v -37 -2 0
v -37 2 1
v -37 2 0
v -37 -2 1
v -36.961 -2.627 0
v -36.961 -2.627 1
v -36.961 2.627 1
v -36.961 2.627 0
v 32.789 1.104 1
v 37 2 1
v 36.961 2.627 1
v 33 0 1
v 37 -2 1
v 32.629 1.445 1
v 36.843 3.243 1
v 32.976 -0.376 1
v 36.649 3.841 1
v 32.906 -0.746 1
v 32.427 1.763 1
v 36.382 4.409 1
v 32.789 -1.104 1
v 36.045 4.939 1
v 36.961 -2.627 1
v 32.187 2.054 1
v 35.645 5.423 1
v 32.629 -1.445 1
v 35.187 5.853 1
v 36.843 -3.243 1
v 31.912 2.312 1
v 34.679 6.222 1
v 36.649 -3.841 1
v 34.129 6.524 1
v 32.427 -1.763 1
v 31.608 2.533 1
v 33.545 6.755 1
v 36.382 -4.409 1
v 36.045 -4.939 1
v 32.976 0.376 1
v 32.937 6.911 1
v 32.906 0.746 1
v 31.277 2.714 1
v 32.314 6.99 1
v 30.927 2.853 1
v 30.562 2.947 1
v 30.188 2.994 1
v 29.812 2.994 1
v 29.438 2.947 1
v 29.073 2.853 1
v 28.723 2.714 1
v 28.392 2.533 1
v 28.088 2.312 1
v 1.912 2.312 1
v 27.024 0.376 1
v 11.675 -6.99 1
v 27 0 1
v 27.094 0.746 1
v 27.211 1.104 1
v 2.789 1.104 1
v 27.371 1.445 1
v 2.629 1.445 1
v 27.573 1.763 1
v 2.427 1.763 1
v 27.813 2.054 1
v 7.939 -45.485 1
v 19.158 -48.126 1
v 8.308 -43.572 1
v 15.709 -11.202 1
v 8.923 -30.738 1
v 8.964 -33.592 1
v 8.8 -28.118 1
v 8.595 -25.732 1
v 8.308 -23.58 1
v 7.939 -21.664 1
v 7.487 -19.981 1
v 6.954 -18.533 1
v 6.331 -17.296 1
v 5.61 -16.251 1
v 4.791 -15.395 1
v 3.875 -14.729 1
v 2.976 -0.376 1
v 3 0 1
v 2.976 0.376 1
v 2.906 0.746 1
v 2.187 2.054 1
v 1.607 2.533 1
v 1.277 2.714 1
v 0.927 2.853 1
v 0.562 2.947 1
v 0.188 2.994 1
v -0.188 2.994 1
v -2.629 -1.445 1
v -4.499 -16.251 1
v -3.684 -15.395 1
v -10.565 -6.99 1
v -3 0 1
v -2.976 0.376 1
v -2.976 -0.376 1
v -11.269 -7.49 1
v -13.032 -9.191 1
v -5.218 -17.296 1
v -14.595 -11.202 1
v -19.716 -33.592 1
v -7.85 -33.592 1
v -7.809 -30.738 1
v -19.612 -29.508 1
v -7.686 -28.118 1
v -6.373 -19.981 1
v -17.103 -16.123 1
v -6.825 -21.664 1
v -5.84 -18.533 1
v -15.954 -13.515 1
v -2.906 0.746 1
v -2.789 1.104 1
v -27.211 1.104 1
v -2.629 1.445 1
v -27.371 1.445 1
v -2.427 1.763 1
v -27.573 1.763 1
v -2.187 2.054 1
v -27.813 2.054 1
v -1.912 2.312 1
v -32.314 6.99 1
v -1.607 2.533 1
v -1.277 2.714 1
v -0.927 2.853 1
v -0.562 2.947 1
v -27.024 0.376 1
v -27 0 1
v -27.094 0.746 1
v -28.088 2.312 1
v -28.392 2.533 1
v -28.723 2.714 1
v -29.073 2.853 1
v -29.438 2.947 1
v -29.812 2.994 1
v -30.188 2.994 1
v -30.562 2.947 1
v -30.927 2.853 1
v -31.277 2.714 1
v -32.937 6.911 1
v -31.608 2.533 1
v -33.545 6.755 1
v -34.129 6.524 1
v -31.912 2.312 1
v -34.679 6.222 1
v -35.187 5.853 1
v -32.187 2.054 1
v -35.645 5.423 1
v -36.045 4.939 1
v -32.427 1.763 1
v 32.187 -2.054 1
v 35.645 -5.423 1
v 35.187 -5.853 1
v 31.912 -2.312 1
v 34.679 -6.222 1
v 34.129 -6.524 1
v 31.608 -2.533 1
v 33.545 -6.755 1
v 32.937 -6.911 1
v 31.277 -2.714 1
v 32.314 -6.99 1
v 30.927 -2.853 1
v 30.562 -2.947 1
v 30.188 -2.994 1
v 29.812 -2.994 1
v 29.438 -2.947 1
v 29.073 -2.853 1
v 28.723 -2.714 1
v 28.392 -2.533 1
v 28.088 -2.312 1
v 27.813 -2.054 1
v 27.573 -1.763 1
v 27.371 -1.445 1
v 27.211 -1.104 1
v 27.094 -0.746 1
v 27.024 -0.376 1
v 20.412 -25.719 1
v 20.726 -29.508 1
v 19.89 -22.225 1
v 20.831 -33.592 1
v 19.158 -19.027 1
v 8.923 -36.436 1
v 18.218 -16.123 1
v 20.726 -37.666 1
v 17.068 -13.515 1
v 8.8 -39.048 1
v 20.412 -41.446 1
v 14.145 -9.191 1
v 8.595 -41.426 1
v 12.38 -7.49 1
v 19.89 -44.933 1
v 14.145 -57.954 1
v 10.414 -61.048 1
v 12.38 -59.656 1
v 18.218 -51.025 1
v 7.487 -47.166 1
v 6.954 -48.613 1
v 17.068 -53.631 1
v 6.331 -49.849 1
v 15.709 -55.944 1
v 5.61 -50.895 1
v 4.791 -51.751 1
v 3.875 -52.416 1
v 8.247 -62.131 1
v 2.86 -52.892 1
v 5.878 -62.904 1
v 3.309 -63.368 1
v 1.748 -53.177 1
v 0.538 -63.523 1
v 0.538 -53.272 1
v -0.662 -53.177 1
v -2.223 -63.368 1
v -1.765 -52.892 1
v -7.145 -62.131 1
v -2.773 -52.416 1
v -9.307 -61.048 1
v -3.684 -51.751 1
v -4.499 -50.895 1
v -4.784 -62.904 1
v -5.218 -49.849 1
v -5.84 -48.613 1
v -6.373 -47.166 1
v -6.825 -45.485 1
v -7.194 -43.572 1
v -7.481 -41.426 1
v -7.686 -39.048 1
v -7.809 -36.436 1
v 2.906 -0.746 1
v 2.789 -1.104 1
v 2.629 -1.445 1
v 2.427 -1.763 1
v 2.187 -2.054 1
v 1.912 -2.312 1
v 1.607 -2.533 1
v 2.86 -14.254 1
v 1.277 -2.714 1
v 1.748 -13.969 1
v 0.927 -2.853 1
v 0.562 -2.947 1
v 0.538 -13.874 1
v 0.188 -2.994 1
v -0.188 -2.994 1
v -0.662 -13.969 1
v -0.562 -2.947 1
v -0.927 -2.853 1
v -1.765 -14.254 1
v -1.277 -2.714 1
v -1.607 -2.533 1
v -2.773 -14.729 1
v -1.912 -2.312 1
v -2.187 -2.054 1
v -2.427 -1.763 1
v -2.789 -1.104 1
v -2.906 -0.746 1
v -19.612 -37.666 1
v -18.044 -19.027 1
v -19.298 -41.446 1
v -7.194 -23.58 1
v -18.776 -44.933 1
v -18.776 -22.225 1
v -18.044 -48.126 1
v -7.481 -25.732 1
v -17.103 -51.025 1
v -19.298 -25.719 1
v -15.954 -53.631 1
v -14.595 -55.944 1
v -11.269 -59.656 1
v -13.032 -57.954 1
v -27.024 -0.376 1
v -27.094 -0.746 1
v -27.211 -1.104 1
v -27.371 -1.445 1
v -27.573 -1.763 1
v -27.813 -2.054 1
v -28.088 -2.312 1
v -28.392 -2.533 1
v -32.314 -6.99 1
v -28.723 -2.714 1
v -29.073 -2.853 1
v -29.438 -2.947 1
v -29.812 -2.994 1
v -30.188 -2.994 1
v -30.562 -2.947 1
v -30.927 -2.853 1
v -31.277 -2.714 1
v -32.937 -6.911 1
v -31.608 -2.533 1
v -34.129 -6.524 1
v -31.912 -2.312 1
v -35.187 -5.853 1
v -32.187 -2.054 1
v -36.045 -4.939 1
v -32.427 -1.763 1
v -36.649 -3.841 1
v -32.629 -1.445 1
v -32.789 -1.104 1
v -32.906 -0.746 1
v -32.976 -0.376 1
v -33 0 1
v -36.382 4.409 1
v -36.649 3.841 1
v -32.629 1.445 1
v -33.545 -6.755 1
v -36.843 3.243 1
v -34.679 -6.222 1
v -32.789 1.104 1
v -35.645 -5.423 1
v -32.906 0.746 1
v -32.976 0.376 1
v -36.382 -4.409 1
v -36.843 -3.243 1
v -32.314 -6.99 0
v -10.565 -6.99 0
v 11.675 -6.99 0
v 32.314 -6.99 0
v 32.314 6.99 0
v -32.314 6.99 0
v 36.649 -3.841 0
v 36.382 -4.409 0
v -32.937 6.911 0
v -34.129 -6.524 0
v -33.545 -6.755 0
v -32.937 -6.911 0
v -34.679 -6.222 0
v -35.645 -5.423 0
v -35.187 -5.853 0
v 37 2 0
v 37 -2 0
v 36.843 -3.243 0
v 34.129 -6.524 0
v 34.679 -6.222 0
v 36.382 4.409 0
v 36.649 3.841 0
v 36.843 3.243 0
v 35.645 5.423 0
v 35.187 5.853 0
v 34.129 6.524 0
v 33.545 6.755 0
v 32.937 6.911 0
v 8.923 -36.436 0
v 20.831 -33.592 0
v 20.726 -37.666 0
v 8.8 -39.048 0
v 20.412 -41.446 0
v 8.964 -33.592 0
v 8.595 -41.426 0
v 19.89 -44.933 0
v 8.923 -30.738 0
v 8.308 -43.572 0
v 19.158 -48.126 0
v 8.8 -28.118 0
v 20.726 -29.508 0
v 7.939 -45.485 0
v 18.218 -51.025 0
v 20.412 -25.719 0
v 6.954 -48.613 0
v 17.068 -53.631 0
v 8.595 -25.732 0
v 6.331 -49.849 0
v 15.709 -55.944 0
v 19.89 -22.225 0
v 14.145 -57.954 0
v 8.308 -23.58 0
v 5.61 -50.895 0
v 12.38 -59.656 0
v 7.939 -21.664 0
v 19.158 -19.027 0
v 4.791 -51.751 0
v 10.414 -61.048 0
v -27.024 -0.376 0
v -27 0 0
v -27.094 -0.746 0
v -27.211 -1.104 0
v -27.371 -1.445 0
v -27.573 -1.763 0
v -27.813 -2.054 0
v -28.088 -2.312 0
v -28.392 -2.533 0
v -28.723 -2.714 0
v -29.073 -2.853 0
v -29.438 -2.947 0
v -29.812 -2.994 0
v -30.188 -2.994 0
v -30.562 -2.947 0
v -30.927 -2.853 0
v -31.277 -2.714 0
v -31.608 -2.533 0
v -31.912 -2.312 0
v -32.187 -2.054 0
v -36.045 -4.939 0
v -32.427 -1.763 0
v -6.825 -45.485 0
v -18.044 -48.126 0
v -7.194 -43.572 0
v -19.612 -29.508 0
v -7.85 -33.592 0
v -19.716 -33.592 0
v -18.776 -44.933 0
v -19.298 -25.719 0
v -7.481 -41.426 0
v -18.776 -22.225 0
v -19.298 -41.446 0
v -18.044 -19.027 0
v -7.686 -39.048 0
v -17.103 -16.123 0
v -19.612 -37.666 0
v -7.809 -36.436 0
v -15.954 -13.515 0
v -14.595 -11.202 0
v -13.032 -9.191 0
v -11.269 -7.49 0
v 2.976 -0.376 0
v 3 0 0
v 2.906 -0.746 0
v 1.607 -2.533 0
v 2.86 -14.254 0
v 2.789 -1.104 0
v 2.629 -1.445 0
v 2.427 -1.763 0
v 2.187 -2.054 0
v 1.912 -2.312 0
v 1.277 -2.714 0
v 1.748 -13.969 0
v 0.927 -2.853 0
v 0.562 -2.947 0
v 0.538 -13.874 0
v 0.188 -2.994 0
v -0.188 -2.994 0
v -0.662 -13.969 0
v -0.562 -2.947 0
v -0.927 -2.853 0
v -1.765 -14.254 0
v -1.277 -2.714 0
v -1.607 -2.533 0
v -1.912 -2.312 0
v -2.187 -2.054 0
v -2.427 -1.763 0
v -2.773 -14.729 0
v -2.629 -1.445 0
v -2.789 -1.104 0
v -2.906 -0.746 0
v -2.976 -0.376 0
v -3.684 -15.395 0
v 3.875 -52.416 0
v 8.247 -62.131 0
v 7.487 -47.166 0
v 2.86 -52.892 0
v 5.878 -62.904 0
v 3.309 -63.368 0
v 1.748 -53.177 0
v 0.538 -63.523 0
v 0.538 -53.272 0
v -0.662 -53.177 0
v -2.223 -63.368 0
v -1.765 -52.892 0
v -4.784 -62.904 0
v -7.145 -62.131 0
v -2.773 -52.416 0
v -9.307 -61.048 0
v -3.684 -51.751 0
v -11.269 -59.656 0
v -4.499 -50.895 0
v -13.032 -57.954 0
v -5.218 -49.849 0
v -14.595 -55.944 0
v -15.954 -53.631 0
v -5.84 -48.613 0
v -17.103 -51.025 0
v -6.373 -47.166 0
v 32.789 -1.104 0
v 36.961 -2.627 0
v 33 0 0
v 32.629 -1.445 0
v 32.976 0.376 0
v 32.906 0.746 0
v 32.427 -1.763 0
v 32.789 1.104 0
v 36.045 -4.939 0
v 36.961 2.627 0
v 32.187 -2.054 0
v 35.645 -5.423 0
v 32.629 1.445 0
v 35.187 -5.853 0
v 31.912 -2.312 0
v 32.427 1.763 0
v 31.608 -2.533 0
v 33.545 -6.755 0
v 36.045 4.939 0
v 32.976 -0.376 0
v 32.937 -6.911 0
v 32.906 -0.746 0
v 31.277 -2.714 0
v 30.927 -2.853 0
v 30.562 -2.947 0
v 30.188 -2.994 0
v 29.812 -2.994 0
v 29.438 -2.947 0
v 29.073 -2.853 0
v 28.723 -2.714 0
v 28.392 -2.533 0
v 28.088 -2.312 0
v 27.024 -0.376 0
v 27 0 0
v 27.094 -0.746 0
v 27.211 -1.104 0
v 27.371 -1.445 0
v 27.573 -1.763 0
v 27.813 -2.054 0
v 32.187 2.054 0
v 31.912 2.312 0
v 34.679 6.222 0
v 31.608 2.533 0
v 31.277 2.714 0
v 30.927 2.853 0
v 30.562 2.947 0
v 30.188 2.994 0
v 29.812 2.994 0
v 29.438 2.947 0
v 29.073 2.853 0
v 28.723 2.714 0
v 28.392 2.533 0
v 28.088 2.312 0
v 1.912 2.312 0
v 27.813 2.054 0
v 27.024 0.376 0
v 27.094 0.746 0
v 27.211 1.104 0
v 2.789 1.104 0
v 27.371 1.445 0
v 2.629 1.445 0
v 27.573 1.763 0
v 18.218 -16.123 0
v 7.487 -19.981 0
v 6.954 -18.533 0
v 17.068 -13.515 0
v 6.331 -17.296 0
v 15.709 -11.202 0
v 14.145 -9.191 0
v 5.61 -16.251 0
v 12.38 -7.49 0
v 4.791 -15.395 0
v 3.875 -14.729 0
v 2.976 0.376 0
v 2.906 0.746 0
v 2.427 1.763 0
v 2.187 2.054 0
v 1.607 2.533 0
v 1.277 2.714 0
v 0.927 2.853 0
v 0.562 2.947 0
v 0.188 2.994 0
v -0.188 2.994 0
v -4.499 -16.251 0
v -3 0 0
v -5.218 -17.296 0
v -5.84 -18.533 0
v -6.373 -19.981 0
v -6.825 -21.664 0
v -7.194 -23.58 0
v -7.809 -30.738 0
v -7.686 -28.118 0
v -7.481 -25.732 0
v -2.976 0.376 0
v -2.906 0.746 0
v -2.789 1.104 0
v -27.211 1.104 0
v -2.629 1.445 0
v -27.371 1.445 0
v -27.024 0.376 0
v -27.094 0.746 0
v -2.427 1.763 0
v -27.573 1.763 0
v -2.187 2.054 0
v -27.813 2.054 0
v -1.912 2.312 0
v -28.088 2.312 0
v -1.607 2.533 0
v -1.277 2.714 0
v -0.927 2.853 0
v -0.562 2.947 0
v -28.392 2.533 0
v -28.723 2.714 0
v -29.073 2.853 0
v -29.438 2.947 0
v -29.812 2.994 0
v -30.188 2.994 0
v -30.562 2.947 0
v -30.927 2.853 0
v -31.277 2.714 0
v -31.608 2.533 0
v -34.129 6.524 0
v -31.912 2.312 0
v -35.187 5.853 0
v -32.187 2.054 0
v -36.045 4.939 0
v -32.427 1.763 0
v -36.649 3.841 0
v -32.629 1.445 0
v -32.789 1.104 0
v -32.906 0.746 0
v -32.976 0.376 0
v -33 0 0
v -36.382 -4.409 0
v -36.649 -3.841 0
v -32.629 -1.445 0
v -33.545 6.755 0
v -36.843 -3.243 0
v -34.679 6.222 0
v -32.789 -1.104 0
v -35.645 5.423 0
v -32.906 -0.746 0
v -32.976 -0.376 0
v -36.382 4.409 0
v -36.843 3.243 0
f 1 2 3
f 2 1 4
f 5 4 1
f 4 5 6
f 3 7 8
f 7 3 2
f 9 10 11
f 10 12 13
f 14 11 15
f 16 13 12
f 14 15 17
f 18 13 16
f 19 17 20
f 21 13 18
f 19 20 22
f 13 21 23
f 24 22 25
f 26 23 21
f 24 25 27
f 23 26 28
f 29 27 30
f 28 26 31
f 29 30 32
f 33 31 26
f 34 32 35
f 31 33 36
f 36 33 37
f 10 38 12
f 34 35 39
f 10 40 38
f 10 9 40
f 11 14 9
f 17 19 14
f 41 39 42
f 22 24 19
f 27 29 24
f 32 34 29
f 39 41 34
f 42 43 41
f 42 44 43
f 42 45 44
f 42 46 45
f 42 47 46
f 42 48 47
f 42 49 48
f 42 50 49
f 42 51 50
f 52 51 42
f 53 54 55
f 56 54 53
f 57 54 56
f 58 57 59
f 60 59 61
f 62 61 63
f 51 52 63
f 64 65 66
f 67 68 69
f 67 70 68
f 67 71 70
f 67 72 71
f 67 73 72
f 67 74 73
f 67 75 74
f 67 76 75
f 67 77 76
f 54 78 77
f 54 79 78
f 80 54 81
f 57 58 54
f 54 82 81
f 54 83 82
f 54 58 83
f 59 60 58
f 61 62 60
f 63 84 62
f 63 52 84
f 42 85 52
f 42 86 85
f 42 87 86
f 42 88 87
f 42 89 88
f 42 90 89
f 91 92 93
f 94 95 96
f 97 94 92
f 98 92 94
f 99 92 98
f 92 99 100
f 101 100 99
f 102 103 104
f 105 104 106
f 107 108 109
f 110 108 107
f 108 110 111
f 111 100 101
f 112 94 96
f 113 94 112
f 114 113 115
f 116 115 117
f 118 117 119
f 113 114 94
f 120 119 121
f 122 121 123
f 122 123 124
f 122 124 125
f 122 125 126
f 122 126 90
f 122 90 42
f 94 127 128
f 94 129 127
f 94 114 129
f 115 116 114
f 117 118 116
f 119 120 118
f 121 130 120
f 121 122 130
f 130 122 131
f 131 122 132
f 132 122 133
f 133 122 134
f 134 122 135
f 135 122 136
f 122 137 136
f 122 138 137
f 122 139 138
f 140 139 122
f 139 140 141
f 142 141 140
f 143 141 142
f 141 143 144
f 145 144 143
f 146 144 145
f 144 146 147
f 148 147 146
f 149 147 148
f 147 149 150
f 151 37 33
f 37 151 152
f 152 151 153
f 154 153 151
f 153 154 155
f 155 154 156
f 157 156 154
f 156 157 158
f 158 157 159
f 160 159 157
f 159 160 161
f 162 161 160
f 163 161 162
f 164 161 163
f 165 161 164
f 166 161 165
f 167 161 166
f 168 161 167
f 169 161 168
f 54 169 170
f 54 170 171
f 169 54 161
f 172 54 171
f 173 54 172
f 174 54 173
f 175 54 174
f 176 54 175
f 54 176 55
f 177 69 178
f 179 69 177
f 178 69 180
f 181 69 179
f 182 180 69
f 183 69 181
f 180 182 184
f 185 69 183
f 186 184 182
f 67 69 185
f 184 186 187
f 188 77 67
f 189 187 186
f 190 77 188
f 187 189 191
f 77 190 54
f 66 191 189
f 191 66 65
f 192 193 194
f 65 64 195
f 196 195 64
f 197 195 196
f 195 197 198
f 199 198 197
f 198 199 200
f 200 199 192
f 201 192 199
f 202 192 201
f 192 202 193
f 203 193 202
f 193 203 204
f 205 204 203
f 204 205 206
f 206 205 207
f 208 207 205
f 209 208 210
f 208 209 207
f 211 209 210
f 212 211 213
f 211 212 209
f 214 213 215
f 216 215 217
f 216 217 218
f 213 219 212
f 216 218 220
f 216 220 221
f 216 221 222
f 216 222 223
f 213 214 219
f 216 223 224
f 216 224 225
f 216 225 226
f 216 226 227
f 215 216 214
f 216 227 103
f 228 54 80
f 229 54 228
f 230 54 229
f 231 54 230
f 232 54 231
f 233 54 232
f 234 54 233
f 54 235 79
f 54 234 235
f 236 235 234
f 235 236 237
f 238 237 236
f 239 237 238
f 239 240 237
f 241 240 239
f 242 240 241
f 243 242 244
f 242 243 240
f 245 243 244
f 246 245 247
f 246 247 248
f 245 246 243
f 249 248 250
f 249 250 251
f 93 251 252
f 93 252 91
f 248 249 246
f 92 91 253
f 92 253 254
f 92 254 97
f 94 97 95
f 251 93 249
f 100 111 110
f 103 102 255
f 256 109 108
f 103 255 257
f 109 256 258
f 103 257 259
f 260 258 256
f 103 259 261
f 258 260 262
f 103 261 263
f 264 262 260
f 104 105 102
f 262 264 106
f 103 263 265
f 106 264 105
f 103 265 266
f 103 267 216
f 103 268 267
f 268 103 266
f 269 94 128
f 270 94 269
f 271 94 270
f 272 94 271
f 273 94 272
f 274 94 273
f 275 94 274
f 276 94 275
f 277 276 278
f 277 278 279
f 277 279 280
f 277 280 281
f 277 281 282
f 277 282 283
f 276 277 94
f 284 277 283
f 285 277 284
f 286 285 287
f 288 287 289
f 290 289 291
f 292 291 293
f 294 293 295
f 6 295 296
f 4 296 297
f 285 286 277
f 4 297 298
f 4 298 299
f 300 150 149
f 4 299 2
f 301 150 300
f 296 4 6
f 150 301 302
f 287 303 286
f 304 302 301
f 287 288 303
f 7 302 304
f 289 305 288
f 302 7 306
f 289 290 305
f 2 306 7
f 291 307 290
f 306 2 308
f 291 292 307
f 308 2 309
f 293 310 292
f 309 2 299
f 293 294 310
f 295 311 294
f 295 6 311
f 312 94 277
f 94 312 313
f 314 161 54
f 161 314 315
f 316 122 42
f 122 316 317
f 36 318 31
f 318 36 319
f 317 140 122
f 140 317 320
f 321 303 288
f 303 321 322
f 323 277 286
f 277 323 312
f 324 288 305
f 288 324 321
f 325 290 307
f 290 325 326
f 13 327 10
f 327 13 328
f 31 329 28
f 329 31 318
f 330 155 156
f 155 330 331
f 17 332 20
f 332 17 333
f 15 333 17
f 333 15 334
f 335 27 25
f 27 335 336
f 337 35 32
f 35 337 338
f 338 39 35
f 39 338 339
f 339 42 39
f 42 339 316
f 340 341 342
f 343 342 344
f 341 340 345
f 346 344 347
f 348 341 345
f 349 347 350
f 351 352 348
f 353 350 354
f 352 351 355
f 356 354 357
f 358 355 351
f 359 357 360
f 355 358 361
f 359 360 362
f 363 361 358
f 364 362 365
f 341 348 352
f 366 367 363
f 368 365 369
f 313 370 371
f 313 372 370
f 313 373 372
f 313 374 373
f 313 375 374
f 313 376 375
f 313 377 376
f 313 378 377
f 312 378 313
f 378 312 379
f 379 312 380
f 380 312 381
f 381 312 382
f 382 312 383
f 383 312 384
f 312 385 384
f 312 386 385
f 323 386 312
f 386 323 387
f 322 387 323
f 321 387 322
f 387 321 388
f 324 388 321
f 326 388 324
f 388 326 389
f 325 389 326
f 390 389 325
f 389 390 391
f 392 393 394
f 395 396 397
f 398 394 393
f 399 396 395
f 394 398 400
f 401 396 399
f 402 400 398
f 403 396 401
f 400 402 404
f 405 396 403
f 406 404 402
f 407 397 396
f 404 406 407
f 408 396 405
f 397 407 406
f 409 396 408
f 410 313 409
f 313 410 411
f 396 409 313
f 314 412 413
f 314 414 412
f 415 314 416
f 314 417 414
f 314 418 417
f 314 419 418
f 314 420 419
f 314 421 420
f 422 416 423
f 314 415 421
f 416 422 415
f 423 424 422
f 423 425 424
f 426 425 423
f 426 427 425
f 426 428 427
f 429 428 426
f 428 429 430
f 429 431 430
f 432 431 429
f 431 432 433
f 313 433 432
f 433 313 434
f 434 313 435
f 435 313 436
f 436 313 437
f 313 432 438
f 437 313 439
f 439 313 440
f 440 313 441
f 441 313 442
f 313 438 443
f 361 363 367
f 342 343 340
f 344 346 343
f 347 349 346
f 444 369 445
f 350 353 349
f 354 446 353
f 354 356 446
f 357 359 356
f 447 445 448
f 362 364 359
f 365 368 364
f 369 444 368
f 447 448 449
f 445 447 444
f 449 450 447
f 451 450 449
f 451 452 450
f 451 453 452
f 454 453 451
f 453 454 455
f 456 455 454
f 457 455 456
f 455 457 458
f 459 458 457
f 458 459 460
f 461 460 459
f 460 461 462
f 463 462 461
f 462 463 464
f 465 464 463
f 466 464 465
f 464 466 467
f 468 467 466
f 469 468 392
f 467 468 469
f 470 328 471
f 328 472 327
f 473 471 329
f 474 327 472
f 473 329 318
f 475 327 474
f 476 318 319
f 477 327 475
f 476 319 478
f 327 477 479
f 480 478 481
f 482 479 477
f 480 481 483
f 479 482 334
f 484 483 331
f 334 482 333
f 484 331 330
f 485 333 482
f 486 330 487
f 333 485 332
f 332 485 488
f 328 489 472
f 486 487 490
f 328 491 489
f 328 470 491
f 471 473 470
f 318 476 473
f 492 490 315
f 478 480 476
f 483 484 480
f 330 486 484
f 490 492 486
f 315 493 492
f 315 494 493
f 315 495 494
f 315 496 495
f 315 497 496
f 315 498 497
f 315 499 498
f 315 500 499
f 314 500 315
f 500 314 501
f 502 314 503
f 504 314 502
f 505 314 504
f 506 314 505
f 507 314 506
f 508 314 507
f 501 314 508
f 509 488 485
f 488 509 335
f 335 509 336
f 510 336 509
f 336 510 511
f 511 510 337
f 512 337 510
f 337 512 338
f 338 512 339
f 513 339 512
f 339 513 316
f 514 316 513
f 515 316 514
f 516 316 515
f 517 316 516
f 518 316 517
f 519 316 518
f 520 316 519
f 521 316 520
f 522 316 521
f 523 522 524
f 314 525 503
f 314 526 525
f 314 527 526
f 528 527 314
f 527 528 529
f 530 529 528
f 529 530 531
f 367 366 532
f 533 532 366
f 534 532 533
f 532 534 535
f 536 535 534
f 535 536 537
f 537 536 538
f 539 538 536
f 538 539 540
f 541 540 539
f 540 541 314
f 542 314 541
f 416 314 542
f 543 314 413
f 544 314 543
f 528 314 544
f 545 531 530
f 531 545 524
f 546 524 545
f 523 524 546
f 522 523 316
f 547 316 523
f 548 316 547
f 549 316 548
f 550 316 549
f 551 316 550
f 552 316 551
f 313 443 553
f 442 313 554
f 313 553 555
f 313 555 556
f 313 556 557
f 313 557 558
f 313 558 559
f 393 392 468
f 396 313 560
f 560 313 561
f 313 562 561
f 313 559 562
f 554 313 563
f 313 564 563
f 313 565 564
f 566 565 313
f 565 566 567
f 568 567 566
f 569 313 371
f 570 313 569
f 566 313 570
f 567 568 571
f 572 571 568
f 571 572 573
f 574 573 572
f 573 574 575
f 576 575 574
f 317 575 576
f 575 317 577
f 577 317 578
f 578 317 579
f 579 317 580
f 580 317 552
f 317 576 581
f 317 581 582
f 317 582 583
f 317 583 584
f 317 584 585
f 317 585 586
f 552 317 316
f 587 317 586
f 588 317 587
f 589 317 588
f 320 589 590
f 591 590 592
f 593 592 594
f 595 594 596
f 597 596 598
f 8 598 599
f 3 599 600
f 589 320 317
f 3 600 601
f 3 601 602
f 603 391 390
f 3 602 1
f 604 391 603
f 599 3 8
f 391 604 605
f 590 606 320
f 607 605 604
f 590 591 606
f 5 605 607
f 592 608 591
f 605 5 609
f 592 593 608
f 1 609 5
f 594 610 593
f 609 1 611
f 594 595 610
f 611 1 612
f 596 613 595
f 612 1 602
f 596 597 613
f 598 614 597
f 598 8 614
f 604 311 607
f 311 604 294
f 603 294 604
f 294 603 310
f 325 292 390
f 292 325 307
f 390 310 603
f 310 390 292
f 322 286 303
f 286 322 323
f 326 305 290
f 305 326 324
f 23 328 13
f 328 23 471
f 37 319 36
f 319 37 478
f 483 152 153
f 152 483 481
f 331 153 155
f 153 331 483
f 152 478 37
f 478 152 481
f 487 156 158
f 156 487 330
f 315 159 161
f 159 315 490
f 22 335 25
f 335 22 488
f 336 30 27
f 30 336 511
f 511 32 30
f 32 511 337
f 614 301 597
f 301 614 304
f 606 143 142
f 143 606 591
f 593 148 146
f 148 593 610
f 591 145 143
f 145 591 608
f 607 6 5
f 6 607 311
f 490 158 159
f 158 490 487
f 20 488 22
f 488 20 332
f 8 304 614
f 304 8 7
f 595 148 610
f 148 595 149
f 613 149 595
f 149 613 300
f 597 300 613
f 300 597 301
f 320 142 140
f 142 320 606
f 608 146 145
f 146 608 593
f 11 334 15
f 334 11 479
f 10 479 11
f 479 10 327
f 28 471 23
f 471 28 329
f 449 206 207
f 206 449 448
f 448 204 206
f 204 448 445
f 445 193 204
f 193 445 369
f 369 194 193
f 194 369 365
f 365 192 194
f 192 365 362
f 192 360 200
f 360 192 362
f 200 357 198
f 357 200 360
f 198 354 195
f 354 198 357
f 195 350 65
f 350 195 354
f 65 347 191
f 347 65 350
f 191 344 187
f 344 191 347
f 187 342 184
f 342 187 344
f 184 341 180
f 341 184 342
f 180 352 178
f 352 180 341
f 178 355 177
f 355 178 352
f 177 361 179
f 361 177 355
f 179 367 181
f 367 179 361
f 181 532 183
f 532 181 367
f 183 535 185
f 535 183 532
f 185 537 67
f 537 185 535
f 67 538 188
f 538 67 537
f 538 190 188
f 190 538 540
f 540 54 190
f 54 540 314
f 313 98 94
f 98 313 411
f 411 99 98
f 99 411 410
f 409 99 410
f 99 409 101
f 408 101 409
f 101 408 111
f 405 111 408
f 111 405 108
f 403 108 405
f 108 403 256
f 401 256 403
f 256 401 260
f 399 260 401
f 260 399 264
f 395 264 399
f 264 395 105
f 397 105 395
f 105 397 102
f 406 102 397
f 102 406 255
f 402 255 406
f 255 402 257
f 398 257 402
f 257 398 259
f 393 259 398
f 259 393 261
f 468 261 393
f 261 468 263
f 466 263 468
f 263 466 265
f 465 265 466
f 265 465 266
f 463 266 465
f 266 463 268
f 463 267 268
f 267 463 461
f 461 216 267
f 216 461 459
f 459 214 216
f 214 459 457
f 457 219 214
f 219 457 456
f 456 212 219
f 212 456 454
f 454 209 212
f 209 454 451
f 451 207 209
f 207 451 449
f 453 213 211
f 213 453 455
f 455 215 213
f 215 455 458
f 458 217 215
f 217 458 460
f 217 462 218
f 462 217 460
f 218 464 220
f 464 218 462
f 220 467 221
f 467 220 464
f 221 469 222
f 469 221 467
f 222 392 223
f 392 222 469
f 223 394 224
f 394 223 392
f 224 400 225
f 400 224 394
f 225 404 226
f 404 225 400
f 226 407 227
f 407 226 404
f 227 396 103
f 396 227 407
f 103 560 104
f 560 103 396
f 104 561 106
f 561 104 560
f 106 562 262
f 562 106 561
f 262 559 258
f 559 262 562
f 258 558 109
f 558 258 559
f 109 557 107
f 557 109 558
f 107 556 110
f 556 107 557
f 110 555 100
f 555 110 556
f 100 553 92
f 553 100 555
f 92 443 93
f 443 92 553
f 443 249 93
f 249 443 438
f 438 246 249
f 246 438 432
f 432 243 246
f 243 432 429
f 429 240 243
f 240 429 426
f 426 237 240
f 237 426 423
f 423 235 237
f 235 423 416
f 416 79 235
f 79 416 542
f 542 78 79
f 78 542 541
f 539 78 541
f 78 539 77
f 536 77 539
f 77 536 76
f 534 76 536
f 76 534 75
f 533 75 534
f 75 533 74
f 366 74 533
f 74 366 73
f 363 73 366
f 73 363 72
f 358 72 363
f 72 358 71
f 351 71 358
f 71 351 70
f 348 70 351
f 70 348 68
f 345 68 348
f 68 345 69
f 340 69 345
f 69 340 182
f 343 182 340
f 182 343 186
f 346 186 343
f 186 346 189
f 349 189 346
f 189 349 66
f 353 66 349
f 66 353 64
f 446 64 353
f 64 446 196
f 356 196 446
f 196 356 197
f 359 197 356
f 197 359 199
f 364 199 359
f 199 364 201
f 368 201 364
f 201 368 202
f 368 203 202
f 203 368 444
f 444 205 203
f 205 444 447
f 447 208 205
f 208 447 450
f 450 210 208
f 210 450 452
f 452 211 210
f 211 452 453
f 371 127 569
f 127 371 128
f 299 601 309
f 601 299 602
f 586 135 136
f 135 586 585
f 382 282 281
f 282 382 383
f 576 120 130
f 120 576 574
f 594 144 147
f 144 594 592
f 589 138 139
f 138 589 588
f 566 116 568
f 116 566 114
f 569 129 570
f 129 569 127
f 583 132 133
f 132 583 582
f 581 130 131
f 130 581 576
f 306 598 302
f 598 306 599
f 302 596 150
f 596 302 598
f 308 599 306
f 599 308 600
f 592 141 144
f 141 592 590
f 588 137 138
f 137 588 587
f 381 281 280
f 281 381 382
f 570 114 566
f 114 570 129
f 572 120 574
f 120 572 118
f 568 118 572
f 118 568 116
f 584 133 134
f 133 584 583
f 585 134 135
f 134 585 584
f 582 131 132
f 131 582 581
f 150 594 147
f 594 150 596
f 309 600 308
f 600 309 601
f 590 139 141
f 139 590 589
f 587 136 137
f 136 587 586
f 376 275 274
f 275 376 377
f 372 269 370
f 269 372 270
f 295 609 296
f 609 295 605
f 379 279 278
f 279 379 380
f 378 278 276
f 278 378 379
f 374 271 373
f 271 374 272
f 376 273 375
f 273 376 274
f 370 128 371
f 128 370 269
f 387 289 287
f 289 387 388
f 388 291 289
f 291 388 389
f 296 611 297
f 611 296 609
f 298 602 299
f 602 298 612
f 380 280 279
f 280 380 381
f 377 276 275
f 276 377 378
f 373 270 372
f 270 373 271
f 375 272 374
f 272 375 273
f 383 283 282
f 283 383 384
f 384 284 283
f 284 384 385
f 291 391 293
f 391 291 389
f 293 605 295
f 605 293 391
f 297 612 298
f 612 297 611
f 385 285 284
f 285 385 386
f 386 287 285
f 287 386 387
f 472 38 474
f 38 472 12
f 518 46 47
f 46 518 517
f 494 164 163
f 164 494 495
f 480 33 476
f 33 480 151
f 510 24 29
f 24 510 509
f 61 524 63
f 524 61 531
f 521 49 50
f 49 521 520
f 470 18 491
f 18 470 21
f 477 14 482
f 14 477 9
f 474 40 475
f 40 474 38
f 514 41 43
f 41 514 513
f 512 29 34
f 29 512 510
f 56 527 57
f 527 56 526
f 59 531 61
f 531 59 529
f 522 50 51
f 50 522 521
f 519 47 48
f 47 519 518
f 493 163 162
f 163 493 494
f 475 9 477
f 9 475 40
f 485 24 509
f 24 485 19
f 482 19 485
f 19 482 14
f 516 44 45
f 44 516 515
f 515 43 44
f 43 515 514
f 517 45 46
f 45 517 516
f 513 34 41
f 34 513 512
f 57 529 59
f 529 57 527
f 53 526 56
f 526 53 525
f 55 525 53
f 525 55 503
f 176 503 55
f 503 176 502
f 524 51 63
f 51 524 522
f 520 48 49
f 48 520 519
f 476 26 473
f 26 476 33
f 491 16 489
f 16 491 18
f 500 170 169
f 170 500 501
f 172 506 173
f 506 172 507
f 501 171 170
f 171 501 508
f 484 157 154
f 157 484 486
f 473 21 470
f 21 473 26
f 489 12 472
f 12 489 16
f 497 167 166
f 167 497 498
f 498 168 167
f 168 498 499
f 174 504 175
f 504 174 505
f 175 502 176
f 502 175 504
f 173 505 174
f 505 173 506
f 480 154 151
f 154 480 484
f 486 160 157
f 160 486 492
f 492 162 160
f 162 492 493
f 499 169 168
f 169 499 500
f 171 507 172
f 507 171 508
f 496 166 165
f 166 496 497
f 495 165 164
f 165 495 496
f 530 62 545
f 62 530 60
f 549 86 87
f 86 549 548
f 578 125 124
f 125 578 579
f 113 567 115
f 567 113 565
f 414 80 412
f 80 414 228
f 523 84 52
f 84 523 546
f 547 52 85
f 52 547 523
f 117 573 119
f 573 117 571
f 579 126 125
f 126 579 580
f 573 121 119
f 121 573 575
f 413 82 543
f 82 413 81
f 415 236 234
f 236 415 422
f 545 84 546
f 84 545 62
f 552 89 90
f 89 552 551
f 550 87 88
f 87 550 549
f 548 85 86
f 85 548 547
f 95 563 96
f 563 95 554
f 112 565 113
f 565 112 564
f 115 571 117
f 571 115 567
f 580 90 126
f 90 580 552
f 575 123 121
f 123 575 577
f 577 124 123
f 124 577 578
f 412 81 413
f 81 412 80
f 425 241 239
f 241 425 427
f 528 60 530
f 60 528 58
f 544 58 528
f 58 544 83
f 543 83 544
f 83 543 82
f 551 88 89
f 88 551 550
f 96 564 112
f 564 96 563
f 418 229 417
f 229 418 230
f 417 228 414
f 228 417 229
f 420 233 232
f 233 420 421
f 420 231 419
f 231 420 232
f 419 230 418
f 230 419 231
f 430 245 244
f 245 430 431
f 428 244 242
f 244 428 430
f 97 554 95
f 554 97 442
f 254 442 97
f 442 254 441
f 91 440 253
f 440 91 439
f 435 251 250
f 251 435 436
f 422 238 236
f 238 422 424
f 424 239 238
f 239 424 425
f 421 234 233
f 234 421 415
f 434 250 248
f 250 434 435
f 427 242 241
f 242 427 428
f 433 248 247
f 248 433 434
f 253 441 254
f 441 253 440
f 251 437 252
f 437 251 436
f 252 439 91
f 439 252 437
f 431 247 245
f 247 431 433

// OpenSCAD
$fn = 50;


difference() {
	union() {
		translate(v = [0, 0, 0]) {
			rotate(a = [0, 0, 0]) {
				hull() {
					translate(v = [-32.0000000000, 2.0000000000, 0]) {
						rotate(a = [0, 0, 0]) {
							translate(v = [0, 0, 0]) {
								rotate(a = [0, 0, 0]) {
									cylinder(h = 1, r = 5);
								}
							}
						}
					}
					translate(v = [32.0000000000, 2.0000000000, 0]) {
						rotate(a = [0, 0, 0]) {
							translate(v = [0, 0, 0]) {
								rotate(a = [0, 0, 0]) {
									cylinder(h = 1, r = 5);
								}
							}
						}
					}
					translate(v = [-32.0000000000, -2.0000000000, 0]) {
						rotate(a = [0, 0, 0]) {
							translate(v = [0, 0, 0]) {
								rotate(a = [0, 0, 0]) {
									cylinder(h = 1, r = 5);
								}
							}
						}
					}
					translate(v = [32.0000000000, -2.0000000000, 0]) {
						rotate(a = [0, 0, 0]) {
							translate(v = [0, 0, 0]) {
								rotate(a = [0, 0, 0]) {
									cylinder(h = 1, r = 5);
								}
							}
						}
					}
				}
			}
		}
		translate(v = [0, -5, 0]) {
			rotate(a = [0, 0, 0]) {
				linear_extrude(height = 1) {
					text(font = "DejaVu Sans Mono:style=Bold", halign = "center", size = 57.0000000000, text = "O", valign = "top");
				}
			}
		}
	}
	union() {
		translate(v = [-30.0000000000, 0.0000000000, -125.0000000000]) {
			rotate(a = [0, 0, 0]) {
				cylinder(h = 250, r = 3.0000000000);
			}
		}
		translate(v = [30.0000000000, 0.0000000000, -125.0000000000]) {
			rotate(a = [0, 0, 0]) {
				cylinder(h = 250, r = 3.0000000000);
			}
		}
		translate(v = [30.0000000000, 0.0000000000, -125.0000000000]) {
			rotate(a = [0, 0, 0]) {
				cylinder(h = 250, r = 3.0000000000);
			}
		}
		translate(v = [0, 0, -125.0000000000]) {
			rotate(a = [0, 0, 0]) {
				cylinder(h = 250, r = 3.0000000000);
			}
		}
	}
}
